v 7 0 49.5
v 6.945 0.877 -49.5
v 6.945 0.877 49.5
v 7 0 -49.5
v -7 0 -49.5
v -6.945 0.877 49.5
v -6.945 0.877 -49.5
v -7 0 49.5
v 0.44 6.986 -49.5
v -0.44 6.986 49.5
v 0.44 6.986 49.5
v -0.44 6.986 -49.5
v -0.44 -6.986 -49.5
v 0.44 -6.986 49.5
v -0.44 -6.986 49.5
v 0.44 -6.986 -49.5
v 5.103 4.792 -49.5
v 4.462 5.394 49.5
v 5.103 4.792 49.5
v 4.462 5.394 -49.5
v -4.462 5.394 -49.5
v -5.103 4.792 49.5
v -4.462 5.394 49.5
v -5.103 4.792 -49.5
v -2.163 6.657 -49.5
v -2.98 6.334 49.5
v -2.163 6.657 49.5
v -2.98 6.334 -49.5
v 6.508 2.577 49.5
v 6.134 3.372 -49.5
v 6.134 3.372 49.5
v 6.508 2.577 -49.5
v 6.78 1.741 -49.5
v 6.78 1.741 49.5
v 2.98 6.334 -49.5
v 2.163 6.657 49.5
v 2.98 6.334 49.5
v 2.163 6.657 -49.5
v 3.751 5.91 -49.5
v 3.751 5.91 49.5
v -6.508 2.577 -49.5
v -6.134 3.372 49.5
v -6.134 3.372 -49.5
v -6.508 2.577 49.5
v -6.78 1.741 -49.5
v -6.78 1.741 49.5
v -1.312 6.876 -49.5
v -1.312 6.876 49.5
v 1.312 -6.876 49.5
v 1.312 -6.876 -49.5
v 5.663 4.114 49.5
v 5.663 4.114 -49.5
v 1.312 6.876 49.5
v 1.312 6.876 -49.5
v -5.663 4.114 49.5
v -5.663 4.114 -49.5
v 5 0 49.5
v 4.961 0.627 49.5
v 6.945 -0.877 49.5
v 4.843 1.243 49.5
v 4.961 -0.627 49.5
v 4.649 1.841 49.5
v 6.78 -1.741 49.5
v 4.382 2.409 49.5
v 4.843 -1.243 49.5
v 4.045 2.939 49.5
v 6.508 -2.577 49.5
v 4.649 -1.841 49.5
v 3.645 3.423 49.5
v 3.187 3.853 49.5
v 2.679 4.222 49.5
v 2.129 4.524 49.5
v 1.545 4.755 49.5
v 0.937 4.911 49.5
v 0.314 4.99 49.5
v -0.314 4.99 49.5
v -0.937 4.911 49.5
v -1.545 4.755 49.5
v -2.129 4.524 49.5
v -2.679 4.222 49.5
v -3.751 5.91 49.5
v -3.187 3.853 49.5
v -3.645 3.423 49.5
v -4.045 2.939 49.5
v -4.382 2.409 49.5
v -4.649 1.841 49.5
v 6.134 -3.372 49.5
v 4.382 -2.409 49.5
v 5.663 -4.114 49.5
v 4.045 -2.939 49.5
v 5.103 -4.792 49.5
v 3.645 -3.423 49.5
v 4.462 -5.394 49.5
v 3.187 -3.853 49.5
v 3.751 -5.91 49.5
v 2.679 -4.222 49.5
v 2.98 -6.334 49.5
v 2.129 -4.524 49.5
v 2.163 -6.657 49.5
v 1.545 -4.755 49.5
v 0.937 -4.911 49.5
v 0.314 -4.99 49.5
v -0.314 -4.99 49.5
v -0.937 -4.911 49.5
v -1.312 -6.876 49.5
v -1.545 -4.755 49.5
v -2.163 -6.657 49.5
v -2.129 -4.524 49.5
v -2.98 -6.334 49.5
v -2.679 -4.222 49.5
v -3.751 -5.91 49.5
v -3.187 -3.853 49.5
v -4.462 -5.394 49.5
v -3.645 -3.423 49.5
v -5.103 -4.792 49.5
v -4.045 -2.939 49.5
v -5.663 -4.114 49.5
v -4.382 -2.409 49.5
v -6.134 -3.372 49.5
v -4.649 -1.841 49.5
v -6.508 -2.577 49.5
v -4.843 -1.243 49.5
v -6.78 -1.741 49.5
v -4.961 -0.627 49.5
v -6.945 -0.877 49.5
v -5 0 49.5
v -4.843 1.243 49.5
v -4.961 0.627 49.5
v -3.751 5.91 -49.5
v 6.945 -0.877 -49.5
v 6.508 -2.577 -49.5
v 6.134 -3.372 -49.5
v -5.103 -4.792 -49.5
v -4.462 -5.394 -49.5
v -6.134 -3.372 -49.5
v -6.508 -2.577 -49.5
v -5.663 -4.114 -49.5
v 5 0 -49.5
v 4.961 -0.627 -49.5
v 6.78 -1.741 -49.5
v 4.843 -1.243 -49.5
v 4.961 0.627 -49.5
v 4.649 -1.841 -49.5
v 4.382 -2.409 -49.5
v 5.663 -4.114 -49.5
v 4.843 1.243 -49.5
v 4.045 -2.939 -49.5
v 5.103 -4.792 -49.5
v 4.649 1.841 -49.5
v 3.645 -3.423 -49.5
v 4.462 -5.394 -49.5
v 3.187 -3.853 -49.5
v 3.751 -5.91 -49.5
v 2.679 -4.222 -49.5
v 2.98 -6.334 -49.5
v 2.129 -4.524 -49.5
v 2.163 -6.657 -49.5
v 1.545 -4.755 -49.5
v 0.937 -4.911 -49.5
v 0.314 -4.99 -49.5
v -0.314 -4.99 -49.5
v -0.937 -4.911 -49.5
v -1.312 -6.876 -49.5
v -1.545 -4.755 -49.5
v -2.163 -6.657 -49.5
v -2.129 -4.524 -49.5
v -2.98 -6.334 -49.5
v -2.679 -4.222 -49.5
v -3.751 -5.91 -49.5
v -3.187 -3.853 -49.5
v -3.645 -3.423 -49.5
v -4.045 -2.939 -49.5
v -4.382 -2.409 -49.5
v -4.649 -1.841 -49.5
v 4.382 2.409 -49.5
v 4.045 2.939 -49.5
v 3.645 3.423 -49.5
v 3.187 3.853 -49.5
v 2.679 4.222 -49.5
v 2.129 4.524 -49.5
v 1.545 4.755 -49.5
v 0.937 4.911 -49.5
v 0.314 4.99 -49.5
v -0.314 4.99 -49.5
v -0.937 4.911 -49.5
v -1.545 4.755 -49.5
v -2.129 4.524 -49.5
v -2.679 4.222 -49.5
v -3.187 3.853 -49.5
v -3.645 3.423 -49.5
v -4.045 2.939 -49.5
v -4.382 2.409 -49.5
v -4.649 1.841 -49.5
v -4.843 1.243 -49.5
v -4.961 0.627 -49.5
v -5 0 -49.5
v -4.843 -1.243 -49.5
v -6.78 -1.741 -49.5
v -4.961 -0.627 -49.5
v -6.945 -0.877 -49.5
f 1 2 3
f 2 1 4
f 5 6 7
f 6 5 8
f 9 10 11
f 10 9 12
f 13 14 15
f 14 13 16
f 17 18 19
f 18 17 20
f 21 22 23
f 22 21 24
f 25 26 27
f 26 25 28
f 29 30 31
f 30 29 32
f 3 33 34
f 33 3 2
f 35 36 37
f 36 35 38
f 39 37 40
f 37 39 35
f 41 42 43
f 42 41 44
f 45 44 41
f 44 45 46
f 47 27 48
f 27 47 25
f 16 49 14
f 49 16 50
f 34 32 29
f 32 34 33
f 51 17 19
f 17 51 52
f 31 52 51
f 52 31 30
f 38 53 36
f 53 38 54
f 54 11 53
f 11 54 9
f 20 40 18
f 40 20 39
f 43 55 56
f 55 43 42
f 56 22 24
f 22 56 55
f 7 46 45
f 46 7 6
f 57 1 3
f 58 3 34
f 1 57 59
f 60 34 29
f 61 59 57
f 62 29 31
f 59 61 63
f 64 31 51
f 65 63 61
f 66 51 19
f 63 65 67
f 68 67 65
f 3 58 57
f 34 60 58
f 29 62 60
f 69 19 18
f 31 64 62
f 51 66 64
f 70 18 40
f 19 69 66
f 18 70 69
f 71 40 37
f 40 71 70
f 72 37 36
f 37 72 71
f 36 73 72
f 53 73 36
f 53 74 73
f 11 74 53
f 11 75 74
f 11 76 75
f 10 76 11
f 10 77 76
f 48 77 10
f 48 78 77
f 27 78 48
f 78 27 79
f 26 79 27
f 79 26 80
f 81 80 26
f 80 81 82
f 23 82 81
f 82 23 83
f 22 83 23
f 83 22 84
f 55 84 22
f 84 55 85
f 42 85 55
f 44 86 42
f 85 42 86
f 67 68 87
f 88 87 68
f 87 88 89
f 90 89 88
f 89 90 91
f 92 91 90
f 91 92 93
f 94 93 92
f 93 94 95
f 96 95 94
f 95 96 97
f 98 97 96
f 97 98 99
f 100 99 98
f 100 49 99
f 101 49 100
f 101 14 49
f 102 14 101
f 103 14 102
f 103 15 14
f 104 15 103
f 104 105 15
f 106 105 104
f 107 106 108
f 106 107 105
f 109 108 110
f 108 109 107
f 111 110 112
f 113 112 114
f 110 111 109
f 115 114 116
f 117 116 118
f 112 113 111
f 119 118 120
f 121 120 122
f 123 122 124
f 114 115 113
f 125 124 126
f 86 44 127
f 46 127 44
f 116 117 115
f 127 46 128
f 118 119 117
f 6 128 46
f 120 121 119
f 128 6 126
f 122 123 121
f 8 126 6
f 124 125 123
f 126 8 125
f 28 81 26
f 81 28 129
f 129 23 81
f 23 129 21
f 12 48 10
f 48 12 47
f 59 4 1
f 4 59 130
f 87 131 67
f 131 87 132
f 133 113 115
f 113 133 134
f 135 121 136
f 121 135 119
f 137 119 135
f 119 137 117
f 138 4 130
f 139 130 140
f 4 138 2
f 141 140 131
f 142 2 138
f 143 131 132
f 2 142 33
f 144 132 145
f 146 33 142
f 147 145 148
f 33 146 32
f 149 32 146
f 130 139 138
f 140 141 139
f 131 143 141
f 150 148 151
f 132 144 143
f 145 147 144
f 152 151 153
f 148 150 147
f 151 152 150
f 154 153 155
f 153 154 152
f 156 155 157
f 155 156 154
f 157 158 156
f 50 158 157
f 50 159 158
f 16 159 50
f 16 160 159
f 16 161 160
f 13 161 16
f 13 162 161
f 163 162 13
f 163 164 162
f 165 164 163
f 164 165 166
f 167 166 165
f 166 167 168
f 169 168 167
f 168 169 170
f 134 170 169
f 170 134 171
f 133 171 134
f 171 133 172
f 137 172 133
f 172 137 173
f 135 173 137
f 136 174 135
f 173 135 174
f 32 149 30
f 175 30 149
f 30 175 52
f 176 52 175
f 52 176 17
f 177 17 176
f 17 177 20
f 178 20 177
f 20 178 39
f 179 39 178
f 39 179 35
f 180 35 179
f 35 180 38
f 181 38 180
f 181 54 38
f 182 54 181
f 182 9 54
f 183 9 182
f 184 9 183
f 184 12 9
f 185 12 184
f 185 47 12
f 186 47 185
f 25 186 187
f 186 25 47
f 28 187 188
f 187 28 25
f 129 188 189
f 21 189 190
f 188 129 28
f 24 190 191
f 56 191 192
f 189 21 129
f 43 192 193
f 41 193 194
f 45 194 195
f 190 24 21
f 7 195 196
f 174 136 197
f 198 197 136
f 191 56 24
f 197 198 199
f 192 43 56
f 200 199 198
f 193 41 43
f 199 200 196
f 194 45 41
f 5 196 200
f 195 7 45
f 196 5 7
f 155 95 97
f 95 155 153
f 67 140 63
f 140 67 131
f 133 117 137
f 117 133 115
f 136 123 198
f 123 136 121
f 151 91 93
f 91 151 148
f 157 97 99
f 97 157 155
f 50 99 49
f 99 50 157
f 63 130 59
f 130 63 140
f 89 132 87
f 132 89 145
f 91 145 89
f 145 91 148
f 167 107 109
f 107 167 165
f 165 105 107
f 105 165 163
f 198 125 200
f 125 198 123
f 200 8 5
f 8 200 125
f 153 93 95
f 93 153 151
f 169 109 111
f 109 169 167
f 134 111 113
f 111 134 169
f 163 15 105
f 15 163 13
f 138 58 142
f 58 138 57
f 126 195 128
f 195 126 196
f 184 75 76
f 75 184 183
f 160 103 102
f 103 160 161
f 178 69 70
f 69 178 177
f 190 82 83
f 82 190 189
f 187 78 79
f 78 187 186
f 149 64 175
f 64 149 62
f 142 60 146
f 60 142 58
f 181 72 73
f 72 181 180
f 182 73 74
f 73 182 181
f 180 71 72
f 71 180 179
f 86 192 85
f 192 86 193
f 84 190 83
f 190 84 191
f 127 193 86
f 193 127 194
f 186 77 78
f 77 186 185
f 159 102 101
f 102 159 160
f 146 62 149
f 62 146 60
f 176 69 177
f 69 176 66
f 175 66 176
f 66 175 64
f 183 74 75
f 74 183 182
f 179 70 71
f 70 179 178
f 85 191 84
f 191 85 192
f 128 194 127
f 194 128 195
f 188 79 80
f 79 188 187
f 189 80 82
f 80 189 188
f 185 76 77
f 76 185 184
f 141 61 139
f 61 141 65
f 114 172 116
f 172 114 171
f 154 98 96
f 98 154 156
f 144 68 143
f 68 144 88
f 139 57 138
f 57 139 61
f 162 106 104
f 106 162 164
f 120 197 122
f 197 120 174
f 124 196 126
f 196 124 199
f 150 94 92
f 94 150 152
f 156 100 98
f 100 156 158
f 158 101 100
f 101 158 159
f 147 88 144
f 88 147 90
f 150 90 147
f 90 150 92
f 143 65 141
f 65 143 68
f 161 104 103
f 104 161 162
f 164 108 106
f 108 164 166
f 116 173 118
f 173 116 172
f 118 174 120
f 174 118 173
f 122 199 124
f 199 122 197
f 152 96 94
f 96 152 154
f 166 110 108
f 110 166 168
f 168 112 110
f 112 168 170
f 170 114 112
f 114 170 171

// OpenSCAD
$fn = 50;


difference() {
	union() {
		translate(v = [0, 0, -49.5000000000]) {
			cylinder(h = 99, r = 7.0000000000);
		}
	}
	union() {
		translate(v = [0, 0, -100.0000000000]) {
			cylinder(h = 200, r = 5);
		}
	}
}
